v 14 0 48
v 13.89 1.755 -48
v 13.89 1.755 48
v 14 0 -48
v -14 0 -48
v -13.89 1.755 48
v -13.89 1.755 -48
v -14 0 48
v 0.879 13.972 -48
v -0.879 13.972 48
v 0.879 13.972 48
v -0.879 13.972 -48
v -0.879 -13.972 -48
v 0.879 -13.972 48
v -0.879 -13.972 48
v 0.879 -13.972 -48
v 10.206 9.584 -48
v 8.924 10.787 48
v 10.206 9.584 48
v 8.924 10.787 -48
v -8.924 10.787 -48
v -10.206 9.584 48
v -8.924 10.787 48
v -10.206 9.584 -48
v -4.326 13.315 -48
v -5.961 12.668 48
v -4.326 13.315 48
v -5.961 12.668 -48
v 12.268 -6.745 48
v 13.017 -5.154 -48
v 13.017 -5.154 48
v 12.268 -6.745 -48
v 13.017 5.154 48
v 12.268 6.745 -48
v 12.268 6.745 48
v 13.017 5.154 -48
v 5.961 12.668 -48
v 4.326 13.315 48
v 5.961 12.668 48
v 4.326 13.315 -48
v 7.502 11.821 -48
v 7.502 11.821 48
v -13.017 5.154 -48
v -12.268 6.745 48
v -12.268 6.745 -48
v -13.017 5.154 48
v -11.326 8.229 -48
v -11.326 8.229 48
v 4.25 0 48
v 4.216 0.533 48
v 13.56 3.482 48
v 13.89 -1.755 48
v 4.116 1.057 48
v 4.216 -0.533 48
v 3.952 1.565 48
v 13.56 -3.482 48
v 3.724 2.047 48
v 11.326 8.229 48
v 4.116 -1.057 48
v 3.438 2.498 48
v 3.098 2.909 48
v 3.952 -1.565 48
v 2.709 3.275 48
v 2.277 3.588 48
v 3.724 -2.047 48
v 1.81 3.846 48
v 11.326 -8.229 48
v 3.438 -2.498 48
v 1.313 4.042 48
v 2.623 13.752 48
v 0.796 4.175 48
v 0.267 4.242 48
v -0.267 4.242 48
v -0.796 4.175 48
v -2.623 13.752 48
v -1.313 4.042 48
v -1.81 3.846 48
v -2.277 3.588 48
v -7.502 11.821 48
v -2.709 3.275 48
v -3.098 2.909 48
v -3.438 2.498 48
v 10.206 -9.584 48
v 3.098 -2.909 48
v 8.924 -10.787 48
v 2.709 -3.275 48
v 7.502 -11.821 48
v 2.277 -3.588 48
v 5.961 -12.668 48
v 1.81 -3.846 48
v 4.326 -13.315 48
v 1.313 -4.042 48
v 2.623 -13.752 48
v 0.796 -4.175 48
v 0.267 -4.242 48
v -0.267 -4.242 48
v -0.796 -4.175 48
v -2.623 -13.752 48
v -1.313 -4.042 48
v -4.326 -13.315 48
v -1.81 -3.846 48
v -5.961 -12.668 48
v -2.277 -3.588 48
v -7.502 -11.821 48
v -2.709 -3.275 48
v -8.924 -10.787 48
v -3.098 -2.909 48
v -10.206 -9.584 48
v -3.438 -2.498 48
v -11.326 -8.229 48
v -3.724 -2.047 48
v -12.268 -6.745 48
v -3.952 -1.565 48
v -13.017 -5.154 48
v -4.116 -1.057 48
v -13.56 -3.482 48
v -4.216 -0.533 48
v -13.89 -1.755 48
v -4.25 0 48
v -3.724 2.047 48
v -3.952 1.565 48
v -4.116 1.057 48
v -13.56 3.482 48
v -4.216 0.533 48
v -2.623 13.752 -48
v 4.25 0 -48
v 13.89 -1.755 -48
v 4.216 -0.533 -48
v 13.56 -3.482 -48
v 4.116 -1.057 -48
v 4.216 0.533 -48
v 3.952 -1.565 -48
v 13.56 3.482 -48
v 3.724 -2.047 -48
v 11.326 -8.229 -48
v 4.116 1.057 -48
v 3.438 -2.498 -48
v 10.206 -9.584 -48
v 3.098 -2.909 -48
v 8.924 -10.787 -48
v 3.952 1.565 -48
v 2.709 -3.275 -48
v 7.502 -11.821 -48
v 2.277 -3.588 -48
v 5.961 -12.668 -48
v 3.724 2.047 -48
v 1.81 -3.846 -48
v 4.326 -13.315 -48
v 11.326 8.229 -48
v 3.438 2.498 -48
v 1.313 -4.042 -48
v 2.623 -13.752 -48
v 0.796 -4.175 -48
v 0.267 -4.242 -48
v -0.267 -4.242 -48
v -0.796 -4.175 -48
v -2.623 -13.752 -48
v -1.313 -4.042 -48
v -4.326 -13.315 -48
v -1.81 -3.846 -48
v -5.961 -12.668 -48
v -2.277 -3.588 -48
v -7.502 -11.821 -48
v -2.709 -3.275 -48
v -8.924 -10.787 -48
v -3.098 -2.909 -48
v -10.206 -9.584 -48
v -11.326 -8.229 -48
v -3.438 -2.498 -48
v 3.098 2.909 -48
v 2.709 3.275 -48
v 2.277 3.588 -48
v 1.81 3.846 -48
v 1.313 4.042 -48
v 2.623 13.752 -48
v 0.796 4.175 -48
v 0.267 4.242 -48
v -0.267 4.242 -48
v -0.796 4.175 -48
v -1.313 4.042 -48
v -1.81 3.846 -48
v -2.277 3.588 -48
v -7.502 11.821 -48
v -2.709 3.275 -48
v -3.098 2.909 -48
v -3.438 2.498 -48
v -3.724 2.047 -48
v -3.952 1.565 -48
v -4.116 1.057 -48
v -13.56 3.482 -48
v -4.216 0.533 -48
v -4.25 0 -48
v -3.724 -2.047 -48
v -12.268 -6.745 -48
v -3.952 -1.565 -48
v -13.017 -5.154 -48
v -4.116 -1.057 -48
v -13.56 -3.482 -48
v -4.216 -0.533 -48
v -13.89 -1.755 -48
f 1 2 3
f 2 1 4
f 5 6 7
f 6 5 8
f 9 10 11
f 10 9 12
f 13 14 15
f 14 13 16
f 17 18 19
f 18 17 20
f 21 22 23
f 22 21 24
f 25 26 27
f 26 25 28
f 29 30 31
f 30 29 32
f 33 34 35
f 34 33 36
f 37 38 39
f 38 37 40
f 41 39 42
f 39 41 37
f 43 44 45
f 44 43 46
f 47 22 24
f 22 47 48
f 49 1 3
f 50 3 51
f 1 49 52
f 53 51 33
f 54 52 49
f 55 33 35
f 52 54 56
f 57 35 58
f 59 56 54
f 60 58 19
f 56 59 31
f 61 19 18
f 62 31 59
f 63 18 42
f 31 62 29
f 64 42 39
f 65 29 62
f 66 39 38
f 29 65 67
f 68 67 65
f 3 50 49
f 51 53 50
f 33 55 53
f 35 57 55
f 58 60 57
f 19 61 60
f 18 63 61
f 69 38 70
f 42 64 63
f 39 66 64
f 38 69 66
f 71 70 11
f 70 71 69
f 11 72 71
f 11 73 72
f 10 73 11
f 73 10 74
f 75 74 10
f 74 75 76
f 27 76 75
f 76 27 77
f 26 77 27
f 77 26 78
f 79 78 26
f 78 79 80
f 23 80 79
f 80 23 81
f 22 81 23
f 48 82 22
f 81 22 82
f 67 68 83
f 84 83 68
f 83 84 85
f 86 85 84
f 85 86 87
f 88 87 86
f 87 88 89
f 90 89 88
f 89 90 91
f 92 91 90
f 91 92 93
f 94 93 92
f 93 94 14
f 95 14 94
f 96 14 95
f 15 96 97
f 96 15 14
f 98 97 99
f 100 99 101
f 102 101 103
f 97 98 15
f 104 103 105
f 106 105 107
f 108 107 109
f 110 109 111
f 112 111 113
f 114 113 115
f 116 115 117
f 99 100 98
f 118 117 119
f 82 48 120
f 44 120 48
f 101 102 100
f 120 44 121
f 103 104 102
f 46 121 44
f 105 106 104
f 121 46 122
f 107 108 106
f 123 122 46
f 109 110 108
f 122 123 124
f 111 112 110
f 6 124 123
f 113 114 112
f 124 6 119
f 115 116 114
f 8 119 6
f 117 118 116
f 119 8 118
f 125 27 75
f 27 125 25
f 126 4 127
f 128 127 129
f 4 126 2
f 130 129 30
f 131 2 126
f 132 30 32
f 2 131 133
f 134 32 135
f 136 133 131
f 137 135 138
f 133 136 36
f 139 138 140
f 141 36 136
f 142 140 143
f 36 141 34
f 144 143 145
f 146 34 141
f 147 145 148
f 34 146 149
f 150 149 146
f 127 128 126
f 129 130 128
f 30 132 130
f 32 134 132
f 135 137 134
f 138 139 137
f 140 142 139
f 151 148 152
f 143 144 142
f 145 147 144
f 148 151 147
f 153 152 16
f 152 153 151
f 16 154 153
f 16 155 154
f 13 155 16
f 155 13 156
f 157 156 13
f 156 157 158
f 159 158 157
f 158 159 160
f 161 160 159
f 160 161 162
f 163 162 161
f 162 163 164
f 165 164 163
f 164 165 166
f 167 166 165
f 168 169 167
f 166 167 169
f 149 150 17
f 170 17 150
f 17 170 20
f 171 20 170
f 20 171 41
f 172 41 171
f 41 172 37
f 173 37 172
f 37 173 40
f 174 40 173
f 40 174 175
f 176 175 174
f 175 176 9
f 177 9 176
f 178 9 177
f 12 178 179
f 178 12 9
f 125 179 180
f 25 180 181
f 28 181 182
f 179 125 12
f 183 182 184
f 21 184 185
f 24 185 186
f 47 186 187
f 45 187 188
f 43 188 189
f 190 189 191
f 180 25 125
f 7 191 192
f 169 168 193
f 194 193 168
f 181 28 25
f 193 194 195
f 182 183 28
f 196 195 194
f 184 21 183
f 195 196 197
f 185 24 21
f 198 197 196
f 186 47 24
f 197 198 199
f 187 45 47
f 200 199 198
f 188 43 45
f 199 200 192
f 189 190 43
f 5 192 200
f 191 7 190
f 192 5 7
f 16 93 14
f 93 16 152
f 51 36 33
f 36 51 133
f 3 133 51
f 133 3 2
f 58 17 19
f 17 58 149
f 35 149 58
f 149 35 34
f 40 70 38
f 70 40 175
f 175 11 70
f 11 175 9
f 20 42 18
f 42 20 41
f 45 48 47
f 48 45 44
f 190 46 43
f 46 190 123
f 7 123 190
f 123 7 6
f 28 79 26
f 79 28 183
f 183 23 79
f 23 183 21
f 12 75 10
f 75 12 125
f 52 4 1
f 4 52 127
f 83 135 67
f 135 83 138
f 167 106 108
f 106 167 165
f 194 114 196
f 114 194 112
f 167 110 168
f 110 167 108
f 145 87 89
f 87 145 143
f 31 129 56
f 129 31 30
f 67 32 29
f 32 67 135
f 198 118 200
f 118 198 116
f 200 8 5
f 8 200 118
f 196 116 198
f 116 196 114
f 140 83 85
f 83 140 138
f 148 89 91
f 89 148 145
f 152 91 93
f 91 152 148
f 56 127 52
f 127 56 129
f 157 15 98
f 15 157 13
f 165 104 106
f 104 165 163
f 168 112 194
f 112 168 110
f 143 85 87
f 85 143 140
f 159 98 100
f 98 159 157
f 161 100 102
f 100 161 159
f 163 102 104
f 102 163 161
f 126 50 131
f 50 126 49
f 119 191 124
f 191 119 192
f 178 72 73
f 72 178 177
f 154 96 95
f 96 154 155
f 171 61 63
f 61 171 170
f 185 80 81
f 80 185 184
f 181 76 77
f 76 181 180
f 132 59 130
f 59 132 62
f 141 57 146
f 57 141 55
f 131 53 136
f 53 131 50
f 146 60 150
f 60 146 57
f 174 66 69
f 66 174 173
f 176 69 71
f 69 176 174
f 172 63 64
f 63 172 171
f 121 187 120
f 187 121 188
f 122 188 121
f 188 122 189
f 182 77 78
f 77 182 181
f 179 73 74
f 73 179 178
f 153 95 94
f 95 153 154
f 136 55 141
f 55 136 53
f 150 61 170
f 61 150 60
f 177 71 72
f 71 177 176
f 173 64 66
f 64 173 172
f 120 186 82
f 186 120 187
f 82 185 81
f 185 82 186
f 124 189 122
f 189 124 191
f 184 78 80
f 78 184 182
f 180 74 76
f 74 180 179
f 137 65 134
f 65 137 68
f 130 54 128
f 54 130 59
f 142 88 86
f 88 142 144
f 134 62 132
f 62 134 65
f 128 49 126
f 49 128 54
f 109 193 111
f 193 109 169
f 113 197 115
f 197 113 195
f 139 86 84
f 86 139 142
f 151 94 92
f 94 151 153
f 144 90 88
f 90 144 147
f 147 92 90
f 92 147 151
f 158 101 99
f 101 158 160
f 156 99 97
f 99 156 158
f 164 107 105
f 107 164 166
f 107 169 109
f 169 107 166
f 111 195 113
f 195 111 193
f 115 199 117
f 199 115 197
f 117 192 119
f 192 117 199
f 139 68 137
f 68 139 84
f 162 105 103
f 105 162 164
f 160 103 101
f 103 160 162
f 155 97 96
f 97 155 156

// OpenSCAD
$fn = 50;


difference() {
	union() {
		translate(v = [0, 0, -48.0000000000]) {
			cylinder(h = 96, r = 14.0000000000);
		}
	}
	union() {
		translate(v = [0, 0, -100.0000000000]) {
			cylinder(h = 200, r = 4.2500000000);
		}
	}
}
